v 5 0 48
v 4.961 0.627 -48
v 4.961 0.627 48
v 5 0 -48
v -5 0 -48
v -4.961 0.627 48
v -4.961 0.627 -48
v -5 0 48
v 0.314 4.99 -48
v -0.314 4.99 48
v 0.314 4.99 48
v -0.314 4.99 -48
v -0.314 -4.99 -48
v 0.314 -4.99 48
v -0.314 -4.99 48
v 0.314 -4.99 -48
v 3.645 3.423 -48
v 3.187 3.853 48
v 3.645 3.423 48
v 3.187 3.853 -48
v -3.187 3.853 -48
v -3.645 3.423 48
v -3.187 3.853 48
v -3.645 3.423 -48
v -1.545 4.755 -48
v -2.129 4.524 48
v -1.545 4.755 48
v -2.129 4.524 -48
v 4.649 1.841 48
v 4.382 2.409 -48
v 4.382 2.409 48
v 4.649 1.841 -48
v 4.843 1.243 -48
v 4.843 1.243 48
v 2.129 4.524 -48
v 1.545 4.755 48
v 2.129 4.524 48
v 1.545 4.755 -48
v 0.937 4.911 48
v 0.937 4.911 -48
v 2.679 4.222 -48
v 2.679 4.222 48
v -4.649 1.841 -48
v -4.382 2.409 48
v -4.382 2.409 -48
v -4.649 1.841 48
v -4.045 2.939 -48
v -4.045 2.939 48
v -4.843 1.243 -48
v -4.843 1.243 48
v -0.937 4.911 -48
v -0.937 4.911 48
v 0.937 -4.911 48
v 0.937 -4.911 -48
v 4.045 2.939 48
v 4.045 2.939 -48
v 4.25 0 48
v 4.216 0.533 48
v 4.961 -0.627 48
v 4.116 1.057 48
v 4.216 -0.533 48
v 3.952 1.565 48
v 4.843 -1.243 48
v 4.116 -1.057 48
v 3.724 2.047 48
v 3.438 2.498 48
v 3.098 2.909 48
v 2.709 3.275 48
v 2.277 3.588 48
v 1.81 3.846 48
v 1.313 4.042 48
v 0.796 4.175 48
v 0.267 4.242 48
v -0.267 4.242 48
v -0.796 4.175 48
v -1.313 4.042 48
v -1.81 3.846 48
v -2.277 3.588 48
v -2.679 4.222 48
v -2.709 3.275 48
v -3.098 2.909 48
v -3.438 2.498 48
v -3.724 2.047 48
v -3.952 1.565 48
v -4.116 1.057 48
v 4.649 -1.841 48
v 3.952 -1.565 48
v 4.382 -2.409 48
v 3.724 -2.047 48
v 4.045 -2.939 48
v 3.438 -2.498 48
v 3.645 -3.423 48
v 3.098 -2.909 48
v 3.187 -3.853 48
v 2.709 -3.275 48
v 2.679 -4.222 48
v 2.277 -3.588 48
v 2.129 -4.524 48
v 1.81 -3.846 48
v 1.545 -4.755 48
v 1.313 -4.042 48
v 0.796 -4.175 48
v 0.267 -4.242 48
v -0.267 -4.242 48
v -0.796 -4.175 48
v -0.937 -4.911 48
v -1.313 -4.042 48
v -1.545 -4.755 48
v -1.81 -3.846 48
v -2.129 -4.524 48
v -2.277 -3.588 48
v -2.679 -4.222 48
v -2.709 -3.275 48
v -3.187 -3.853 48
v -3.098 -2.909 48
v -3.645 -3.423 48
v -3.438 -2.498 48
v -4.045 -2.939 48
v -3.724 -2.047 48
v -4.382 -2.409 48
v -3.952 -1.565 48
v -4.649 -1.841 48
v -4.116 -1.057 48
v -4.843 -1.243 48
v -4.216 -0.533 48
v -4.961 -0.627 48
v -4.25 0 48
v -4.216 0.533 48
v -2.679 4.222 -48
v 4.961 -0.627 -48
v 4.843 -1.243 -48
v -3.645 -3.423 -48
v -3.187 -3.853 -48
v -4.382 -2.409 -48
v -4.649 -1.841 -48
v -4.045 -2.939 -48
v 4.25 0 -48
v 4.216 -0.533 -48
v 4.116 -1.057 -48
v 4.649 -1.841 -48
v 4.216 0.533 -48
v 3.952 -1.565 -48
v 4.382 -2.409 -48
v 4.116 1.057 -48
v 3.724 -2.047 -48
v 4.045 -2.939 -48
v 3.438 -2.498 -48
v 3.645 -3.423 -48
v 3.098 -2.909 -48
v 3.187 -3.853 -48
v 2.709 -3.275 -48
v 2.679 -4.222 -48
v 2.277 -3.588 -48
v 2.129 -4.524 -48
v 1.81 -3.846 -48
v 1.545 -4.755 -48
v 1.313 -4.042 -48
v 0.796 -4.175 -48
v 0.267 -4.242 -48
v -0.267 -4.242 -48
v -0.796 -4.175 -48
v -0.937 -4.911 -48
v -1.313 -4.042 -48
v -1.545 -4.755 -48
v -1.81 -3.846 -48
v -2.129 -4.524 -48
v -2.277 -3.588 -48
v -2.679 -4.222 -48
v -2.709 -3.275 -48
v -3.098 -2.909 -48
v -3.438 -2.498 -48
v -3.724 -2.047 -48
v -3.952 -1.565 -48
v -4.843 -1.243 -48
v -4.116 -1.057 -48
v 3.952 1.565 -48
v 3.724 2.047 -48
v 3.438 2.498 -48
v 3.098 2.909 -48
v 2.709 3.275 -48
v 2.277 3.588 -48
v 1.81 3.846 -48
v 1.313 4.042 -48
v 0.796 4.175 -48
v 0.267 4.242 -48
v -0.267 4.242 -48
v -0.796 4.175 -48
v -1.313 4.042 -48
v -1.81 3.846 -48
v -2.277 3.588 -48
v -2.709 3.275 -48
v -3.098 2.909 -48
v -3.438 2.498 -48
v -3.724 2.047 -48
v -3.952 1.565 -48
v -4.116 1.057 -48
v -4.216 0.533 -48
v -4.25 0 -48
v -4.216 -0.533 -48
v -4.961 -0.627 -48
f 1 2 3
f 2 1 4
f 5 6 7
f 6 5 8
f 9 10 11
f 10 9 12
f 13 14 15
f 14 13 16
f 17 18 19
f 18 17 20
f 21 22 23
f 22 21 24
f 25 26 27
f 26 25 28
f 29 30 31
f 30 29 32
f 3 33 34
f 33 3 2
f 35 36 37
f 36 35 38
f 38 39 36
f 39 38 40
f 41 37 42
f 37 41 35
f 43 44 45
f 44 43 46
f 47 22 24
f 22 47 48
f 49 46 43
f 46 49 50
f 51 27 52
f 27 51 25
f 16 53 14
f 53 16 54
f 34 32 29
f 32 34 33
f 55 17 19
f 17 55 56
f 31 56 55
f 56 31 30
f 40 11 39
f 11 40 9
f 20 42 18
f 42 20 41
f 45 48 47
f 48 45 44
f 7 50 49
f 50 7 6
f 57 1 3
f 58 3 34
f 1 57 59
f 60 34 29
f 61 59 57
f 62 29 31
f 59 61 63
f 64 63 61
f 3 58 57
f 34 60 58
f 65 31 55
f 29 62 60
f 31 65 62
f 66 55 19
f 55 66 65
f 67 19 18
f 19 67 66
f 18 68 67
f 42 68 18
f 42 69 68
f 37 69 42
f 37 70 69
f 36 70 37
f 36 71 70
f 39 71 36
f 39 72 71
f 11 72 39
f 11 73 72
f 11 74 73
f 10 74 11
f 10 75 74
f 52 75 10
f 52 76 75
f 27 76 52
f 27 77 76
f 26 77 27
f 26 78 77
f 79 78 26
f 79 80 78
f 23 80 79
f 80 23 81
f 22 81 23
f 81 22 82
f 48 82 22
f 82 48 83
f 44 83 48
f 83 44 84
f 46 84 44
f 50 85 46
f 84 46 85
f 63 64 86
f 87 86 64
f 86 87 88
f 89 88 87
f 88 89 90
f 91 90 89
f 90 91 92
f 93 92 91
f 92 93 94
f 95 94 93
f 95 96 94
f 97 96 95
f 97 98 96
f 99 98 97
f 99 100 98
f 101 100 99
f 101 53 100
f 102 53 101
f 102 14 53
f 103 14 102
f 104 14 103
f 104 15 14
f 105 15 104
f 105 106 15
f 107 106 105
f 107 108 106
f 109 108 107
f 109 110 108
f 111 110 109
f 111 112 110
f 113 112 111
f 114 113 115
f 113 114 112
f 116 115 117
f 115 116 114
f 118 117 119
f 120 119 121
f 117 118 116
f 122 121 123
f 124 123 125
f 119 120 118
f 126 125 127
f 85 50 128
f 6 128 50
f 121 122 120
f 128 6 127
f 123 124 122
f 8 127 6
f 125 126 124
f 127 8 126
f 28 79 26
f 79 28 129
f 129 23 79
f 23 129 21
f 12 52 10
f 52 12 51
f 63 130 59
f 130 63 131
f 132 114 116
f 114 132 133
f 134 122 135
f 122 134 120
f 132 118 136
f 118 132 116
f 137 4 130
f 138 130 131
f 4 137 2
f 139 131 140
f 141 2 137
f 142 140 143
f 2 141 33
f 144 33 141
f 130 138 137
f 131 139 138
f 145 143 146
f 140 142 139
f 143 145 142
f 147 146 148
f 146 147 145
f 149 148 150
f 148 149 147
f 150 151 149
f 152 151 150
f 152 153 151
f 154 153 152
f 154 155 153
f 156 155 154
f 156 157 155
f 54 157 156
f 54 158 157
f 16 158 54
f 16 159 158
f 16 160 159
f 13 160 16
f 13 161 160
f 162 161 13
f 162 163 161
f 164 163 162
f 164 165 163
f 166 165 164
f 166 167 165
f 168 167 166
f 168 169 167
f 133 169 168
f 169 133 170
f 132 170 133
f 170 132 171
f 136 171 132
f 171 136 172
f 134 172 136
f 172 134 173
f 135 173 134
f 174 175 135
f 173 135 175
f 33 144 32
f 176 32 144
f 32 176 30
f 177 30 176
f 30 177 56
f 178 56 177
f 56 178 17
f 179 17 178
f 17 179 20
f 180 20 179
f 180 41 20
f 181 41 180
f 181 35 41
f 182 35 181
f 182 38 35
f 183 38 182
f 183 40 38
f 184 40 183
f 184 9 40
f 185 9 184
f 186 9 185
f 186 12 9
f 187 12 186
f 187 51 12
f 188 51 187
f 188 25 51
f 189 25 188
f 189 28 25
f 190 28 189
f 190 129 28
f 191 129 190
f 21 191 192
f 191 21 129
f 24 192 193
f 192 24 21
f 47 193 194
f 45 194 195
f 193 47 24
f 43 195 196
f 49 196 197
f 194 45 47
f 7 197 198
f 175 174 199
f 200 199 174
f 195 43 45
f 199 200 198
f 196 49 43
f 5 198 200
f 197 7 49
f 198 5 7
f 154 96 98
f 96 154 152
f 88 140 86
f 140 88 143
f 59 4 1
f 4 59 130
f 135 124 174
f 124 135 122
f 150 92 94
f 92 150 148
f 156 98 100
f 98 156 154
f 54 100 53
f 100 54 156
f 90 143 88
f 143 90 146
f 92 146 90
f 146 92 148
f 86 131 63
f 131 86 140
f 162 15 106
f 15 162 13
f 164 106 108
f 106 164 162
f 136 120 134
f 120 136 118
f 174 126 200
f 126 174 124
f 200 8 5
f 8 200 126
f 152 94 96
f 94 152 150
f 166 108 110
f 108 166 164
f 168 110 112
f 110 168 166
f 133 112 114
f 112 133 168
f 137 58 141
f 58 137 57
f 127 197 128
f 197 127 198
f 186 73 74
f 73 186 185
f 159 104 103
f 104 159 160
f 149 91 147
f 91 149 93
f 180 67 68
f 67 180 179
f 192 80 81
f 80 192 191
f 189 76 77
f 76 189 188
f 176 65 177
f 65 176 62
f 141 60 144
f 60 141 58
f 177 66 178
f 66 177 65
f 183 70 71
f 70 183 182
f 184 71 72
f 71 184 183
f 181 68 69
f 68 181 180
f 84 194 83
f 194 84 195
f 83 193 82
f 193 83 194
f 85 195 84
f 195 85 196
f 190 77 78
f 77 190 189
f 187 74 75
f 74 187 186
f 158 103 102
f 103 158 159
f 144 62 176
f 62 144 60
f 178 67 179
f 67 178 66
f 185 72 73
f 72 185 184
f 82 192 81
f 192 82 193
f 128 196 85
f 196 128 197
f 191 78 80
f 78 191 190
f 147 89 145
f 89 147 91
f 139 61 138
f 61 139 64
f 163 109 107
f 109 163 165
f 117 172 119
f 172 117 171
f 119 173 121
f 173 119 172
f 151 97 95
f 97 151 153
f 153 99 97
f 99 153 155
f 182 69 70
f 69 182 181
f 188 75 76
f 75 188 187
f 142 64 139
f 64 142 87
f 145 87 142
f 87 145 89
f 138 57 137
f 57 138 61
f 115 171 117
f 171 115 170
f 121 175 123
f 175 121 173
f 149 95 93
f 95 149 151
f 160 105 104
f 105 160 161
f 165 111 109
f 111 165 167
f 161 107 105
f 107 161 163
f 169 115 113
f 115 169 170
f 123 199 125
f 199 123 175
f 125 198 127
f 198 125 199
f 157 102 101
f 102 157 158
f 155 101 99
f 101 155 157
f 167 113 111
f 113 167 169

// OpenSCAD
$fn = 50;


difference() {
	union() {
		translate(v = [0, 0, -48.0000000000]) {
			cylinder(h = 96, r = 5.0000000000);
		}
	}
	union() {
		translate(v = [0, 0, -100.0000000000]) {
			cylinder(h = 200, r = 4.2500000000);
		}
	}
}
